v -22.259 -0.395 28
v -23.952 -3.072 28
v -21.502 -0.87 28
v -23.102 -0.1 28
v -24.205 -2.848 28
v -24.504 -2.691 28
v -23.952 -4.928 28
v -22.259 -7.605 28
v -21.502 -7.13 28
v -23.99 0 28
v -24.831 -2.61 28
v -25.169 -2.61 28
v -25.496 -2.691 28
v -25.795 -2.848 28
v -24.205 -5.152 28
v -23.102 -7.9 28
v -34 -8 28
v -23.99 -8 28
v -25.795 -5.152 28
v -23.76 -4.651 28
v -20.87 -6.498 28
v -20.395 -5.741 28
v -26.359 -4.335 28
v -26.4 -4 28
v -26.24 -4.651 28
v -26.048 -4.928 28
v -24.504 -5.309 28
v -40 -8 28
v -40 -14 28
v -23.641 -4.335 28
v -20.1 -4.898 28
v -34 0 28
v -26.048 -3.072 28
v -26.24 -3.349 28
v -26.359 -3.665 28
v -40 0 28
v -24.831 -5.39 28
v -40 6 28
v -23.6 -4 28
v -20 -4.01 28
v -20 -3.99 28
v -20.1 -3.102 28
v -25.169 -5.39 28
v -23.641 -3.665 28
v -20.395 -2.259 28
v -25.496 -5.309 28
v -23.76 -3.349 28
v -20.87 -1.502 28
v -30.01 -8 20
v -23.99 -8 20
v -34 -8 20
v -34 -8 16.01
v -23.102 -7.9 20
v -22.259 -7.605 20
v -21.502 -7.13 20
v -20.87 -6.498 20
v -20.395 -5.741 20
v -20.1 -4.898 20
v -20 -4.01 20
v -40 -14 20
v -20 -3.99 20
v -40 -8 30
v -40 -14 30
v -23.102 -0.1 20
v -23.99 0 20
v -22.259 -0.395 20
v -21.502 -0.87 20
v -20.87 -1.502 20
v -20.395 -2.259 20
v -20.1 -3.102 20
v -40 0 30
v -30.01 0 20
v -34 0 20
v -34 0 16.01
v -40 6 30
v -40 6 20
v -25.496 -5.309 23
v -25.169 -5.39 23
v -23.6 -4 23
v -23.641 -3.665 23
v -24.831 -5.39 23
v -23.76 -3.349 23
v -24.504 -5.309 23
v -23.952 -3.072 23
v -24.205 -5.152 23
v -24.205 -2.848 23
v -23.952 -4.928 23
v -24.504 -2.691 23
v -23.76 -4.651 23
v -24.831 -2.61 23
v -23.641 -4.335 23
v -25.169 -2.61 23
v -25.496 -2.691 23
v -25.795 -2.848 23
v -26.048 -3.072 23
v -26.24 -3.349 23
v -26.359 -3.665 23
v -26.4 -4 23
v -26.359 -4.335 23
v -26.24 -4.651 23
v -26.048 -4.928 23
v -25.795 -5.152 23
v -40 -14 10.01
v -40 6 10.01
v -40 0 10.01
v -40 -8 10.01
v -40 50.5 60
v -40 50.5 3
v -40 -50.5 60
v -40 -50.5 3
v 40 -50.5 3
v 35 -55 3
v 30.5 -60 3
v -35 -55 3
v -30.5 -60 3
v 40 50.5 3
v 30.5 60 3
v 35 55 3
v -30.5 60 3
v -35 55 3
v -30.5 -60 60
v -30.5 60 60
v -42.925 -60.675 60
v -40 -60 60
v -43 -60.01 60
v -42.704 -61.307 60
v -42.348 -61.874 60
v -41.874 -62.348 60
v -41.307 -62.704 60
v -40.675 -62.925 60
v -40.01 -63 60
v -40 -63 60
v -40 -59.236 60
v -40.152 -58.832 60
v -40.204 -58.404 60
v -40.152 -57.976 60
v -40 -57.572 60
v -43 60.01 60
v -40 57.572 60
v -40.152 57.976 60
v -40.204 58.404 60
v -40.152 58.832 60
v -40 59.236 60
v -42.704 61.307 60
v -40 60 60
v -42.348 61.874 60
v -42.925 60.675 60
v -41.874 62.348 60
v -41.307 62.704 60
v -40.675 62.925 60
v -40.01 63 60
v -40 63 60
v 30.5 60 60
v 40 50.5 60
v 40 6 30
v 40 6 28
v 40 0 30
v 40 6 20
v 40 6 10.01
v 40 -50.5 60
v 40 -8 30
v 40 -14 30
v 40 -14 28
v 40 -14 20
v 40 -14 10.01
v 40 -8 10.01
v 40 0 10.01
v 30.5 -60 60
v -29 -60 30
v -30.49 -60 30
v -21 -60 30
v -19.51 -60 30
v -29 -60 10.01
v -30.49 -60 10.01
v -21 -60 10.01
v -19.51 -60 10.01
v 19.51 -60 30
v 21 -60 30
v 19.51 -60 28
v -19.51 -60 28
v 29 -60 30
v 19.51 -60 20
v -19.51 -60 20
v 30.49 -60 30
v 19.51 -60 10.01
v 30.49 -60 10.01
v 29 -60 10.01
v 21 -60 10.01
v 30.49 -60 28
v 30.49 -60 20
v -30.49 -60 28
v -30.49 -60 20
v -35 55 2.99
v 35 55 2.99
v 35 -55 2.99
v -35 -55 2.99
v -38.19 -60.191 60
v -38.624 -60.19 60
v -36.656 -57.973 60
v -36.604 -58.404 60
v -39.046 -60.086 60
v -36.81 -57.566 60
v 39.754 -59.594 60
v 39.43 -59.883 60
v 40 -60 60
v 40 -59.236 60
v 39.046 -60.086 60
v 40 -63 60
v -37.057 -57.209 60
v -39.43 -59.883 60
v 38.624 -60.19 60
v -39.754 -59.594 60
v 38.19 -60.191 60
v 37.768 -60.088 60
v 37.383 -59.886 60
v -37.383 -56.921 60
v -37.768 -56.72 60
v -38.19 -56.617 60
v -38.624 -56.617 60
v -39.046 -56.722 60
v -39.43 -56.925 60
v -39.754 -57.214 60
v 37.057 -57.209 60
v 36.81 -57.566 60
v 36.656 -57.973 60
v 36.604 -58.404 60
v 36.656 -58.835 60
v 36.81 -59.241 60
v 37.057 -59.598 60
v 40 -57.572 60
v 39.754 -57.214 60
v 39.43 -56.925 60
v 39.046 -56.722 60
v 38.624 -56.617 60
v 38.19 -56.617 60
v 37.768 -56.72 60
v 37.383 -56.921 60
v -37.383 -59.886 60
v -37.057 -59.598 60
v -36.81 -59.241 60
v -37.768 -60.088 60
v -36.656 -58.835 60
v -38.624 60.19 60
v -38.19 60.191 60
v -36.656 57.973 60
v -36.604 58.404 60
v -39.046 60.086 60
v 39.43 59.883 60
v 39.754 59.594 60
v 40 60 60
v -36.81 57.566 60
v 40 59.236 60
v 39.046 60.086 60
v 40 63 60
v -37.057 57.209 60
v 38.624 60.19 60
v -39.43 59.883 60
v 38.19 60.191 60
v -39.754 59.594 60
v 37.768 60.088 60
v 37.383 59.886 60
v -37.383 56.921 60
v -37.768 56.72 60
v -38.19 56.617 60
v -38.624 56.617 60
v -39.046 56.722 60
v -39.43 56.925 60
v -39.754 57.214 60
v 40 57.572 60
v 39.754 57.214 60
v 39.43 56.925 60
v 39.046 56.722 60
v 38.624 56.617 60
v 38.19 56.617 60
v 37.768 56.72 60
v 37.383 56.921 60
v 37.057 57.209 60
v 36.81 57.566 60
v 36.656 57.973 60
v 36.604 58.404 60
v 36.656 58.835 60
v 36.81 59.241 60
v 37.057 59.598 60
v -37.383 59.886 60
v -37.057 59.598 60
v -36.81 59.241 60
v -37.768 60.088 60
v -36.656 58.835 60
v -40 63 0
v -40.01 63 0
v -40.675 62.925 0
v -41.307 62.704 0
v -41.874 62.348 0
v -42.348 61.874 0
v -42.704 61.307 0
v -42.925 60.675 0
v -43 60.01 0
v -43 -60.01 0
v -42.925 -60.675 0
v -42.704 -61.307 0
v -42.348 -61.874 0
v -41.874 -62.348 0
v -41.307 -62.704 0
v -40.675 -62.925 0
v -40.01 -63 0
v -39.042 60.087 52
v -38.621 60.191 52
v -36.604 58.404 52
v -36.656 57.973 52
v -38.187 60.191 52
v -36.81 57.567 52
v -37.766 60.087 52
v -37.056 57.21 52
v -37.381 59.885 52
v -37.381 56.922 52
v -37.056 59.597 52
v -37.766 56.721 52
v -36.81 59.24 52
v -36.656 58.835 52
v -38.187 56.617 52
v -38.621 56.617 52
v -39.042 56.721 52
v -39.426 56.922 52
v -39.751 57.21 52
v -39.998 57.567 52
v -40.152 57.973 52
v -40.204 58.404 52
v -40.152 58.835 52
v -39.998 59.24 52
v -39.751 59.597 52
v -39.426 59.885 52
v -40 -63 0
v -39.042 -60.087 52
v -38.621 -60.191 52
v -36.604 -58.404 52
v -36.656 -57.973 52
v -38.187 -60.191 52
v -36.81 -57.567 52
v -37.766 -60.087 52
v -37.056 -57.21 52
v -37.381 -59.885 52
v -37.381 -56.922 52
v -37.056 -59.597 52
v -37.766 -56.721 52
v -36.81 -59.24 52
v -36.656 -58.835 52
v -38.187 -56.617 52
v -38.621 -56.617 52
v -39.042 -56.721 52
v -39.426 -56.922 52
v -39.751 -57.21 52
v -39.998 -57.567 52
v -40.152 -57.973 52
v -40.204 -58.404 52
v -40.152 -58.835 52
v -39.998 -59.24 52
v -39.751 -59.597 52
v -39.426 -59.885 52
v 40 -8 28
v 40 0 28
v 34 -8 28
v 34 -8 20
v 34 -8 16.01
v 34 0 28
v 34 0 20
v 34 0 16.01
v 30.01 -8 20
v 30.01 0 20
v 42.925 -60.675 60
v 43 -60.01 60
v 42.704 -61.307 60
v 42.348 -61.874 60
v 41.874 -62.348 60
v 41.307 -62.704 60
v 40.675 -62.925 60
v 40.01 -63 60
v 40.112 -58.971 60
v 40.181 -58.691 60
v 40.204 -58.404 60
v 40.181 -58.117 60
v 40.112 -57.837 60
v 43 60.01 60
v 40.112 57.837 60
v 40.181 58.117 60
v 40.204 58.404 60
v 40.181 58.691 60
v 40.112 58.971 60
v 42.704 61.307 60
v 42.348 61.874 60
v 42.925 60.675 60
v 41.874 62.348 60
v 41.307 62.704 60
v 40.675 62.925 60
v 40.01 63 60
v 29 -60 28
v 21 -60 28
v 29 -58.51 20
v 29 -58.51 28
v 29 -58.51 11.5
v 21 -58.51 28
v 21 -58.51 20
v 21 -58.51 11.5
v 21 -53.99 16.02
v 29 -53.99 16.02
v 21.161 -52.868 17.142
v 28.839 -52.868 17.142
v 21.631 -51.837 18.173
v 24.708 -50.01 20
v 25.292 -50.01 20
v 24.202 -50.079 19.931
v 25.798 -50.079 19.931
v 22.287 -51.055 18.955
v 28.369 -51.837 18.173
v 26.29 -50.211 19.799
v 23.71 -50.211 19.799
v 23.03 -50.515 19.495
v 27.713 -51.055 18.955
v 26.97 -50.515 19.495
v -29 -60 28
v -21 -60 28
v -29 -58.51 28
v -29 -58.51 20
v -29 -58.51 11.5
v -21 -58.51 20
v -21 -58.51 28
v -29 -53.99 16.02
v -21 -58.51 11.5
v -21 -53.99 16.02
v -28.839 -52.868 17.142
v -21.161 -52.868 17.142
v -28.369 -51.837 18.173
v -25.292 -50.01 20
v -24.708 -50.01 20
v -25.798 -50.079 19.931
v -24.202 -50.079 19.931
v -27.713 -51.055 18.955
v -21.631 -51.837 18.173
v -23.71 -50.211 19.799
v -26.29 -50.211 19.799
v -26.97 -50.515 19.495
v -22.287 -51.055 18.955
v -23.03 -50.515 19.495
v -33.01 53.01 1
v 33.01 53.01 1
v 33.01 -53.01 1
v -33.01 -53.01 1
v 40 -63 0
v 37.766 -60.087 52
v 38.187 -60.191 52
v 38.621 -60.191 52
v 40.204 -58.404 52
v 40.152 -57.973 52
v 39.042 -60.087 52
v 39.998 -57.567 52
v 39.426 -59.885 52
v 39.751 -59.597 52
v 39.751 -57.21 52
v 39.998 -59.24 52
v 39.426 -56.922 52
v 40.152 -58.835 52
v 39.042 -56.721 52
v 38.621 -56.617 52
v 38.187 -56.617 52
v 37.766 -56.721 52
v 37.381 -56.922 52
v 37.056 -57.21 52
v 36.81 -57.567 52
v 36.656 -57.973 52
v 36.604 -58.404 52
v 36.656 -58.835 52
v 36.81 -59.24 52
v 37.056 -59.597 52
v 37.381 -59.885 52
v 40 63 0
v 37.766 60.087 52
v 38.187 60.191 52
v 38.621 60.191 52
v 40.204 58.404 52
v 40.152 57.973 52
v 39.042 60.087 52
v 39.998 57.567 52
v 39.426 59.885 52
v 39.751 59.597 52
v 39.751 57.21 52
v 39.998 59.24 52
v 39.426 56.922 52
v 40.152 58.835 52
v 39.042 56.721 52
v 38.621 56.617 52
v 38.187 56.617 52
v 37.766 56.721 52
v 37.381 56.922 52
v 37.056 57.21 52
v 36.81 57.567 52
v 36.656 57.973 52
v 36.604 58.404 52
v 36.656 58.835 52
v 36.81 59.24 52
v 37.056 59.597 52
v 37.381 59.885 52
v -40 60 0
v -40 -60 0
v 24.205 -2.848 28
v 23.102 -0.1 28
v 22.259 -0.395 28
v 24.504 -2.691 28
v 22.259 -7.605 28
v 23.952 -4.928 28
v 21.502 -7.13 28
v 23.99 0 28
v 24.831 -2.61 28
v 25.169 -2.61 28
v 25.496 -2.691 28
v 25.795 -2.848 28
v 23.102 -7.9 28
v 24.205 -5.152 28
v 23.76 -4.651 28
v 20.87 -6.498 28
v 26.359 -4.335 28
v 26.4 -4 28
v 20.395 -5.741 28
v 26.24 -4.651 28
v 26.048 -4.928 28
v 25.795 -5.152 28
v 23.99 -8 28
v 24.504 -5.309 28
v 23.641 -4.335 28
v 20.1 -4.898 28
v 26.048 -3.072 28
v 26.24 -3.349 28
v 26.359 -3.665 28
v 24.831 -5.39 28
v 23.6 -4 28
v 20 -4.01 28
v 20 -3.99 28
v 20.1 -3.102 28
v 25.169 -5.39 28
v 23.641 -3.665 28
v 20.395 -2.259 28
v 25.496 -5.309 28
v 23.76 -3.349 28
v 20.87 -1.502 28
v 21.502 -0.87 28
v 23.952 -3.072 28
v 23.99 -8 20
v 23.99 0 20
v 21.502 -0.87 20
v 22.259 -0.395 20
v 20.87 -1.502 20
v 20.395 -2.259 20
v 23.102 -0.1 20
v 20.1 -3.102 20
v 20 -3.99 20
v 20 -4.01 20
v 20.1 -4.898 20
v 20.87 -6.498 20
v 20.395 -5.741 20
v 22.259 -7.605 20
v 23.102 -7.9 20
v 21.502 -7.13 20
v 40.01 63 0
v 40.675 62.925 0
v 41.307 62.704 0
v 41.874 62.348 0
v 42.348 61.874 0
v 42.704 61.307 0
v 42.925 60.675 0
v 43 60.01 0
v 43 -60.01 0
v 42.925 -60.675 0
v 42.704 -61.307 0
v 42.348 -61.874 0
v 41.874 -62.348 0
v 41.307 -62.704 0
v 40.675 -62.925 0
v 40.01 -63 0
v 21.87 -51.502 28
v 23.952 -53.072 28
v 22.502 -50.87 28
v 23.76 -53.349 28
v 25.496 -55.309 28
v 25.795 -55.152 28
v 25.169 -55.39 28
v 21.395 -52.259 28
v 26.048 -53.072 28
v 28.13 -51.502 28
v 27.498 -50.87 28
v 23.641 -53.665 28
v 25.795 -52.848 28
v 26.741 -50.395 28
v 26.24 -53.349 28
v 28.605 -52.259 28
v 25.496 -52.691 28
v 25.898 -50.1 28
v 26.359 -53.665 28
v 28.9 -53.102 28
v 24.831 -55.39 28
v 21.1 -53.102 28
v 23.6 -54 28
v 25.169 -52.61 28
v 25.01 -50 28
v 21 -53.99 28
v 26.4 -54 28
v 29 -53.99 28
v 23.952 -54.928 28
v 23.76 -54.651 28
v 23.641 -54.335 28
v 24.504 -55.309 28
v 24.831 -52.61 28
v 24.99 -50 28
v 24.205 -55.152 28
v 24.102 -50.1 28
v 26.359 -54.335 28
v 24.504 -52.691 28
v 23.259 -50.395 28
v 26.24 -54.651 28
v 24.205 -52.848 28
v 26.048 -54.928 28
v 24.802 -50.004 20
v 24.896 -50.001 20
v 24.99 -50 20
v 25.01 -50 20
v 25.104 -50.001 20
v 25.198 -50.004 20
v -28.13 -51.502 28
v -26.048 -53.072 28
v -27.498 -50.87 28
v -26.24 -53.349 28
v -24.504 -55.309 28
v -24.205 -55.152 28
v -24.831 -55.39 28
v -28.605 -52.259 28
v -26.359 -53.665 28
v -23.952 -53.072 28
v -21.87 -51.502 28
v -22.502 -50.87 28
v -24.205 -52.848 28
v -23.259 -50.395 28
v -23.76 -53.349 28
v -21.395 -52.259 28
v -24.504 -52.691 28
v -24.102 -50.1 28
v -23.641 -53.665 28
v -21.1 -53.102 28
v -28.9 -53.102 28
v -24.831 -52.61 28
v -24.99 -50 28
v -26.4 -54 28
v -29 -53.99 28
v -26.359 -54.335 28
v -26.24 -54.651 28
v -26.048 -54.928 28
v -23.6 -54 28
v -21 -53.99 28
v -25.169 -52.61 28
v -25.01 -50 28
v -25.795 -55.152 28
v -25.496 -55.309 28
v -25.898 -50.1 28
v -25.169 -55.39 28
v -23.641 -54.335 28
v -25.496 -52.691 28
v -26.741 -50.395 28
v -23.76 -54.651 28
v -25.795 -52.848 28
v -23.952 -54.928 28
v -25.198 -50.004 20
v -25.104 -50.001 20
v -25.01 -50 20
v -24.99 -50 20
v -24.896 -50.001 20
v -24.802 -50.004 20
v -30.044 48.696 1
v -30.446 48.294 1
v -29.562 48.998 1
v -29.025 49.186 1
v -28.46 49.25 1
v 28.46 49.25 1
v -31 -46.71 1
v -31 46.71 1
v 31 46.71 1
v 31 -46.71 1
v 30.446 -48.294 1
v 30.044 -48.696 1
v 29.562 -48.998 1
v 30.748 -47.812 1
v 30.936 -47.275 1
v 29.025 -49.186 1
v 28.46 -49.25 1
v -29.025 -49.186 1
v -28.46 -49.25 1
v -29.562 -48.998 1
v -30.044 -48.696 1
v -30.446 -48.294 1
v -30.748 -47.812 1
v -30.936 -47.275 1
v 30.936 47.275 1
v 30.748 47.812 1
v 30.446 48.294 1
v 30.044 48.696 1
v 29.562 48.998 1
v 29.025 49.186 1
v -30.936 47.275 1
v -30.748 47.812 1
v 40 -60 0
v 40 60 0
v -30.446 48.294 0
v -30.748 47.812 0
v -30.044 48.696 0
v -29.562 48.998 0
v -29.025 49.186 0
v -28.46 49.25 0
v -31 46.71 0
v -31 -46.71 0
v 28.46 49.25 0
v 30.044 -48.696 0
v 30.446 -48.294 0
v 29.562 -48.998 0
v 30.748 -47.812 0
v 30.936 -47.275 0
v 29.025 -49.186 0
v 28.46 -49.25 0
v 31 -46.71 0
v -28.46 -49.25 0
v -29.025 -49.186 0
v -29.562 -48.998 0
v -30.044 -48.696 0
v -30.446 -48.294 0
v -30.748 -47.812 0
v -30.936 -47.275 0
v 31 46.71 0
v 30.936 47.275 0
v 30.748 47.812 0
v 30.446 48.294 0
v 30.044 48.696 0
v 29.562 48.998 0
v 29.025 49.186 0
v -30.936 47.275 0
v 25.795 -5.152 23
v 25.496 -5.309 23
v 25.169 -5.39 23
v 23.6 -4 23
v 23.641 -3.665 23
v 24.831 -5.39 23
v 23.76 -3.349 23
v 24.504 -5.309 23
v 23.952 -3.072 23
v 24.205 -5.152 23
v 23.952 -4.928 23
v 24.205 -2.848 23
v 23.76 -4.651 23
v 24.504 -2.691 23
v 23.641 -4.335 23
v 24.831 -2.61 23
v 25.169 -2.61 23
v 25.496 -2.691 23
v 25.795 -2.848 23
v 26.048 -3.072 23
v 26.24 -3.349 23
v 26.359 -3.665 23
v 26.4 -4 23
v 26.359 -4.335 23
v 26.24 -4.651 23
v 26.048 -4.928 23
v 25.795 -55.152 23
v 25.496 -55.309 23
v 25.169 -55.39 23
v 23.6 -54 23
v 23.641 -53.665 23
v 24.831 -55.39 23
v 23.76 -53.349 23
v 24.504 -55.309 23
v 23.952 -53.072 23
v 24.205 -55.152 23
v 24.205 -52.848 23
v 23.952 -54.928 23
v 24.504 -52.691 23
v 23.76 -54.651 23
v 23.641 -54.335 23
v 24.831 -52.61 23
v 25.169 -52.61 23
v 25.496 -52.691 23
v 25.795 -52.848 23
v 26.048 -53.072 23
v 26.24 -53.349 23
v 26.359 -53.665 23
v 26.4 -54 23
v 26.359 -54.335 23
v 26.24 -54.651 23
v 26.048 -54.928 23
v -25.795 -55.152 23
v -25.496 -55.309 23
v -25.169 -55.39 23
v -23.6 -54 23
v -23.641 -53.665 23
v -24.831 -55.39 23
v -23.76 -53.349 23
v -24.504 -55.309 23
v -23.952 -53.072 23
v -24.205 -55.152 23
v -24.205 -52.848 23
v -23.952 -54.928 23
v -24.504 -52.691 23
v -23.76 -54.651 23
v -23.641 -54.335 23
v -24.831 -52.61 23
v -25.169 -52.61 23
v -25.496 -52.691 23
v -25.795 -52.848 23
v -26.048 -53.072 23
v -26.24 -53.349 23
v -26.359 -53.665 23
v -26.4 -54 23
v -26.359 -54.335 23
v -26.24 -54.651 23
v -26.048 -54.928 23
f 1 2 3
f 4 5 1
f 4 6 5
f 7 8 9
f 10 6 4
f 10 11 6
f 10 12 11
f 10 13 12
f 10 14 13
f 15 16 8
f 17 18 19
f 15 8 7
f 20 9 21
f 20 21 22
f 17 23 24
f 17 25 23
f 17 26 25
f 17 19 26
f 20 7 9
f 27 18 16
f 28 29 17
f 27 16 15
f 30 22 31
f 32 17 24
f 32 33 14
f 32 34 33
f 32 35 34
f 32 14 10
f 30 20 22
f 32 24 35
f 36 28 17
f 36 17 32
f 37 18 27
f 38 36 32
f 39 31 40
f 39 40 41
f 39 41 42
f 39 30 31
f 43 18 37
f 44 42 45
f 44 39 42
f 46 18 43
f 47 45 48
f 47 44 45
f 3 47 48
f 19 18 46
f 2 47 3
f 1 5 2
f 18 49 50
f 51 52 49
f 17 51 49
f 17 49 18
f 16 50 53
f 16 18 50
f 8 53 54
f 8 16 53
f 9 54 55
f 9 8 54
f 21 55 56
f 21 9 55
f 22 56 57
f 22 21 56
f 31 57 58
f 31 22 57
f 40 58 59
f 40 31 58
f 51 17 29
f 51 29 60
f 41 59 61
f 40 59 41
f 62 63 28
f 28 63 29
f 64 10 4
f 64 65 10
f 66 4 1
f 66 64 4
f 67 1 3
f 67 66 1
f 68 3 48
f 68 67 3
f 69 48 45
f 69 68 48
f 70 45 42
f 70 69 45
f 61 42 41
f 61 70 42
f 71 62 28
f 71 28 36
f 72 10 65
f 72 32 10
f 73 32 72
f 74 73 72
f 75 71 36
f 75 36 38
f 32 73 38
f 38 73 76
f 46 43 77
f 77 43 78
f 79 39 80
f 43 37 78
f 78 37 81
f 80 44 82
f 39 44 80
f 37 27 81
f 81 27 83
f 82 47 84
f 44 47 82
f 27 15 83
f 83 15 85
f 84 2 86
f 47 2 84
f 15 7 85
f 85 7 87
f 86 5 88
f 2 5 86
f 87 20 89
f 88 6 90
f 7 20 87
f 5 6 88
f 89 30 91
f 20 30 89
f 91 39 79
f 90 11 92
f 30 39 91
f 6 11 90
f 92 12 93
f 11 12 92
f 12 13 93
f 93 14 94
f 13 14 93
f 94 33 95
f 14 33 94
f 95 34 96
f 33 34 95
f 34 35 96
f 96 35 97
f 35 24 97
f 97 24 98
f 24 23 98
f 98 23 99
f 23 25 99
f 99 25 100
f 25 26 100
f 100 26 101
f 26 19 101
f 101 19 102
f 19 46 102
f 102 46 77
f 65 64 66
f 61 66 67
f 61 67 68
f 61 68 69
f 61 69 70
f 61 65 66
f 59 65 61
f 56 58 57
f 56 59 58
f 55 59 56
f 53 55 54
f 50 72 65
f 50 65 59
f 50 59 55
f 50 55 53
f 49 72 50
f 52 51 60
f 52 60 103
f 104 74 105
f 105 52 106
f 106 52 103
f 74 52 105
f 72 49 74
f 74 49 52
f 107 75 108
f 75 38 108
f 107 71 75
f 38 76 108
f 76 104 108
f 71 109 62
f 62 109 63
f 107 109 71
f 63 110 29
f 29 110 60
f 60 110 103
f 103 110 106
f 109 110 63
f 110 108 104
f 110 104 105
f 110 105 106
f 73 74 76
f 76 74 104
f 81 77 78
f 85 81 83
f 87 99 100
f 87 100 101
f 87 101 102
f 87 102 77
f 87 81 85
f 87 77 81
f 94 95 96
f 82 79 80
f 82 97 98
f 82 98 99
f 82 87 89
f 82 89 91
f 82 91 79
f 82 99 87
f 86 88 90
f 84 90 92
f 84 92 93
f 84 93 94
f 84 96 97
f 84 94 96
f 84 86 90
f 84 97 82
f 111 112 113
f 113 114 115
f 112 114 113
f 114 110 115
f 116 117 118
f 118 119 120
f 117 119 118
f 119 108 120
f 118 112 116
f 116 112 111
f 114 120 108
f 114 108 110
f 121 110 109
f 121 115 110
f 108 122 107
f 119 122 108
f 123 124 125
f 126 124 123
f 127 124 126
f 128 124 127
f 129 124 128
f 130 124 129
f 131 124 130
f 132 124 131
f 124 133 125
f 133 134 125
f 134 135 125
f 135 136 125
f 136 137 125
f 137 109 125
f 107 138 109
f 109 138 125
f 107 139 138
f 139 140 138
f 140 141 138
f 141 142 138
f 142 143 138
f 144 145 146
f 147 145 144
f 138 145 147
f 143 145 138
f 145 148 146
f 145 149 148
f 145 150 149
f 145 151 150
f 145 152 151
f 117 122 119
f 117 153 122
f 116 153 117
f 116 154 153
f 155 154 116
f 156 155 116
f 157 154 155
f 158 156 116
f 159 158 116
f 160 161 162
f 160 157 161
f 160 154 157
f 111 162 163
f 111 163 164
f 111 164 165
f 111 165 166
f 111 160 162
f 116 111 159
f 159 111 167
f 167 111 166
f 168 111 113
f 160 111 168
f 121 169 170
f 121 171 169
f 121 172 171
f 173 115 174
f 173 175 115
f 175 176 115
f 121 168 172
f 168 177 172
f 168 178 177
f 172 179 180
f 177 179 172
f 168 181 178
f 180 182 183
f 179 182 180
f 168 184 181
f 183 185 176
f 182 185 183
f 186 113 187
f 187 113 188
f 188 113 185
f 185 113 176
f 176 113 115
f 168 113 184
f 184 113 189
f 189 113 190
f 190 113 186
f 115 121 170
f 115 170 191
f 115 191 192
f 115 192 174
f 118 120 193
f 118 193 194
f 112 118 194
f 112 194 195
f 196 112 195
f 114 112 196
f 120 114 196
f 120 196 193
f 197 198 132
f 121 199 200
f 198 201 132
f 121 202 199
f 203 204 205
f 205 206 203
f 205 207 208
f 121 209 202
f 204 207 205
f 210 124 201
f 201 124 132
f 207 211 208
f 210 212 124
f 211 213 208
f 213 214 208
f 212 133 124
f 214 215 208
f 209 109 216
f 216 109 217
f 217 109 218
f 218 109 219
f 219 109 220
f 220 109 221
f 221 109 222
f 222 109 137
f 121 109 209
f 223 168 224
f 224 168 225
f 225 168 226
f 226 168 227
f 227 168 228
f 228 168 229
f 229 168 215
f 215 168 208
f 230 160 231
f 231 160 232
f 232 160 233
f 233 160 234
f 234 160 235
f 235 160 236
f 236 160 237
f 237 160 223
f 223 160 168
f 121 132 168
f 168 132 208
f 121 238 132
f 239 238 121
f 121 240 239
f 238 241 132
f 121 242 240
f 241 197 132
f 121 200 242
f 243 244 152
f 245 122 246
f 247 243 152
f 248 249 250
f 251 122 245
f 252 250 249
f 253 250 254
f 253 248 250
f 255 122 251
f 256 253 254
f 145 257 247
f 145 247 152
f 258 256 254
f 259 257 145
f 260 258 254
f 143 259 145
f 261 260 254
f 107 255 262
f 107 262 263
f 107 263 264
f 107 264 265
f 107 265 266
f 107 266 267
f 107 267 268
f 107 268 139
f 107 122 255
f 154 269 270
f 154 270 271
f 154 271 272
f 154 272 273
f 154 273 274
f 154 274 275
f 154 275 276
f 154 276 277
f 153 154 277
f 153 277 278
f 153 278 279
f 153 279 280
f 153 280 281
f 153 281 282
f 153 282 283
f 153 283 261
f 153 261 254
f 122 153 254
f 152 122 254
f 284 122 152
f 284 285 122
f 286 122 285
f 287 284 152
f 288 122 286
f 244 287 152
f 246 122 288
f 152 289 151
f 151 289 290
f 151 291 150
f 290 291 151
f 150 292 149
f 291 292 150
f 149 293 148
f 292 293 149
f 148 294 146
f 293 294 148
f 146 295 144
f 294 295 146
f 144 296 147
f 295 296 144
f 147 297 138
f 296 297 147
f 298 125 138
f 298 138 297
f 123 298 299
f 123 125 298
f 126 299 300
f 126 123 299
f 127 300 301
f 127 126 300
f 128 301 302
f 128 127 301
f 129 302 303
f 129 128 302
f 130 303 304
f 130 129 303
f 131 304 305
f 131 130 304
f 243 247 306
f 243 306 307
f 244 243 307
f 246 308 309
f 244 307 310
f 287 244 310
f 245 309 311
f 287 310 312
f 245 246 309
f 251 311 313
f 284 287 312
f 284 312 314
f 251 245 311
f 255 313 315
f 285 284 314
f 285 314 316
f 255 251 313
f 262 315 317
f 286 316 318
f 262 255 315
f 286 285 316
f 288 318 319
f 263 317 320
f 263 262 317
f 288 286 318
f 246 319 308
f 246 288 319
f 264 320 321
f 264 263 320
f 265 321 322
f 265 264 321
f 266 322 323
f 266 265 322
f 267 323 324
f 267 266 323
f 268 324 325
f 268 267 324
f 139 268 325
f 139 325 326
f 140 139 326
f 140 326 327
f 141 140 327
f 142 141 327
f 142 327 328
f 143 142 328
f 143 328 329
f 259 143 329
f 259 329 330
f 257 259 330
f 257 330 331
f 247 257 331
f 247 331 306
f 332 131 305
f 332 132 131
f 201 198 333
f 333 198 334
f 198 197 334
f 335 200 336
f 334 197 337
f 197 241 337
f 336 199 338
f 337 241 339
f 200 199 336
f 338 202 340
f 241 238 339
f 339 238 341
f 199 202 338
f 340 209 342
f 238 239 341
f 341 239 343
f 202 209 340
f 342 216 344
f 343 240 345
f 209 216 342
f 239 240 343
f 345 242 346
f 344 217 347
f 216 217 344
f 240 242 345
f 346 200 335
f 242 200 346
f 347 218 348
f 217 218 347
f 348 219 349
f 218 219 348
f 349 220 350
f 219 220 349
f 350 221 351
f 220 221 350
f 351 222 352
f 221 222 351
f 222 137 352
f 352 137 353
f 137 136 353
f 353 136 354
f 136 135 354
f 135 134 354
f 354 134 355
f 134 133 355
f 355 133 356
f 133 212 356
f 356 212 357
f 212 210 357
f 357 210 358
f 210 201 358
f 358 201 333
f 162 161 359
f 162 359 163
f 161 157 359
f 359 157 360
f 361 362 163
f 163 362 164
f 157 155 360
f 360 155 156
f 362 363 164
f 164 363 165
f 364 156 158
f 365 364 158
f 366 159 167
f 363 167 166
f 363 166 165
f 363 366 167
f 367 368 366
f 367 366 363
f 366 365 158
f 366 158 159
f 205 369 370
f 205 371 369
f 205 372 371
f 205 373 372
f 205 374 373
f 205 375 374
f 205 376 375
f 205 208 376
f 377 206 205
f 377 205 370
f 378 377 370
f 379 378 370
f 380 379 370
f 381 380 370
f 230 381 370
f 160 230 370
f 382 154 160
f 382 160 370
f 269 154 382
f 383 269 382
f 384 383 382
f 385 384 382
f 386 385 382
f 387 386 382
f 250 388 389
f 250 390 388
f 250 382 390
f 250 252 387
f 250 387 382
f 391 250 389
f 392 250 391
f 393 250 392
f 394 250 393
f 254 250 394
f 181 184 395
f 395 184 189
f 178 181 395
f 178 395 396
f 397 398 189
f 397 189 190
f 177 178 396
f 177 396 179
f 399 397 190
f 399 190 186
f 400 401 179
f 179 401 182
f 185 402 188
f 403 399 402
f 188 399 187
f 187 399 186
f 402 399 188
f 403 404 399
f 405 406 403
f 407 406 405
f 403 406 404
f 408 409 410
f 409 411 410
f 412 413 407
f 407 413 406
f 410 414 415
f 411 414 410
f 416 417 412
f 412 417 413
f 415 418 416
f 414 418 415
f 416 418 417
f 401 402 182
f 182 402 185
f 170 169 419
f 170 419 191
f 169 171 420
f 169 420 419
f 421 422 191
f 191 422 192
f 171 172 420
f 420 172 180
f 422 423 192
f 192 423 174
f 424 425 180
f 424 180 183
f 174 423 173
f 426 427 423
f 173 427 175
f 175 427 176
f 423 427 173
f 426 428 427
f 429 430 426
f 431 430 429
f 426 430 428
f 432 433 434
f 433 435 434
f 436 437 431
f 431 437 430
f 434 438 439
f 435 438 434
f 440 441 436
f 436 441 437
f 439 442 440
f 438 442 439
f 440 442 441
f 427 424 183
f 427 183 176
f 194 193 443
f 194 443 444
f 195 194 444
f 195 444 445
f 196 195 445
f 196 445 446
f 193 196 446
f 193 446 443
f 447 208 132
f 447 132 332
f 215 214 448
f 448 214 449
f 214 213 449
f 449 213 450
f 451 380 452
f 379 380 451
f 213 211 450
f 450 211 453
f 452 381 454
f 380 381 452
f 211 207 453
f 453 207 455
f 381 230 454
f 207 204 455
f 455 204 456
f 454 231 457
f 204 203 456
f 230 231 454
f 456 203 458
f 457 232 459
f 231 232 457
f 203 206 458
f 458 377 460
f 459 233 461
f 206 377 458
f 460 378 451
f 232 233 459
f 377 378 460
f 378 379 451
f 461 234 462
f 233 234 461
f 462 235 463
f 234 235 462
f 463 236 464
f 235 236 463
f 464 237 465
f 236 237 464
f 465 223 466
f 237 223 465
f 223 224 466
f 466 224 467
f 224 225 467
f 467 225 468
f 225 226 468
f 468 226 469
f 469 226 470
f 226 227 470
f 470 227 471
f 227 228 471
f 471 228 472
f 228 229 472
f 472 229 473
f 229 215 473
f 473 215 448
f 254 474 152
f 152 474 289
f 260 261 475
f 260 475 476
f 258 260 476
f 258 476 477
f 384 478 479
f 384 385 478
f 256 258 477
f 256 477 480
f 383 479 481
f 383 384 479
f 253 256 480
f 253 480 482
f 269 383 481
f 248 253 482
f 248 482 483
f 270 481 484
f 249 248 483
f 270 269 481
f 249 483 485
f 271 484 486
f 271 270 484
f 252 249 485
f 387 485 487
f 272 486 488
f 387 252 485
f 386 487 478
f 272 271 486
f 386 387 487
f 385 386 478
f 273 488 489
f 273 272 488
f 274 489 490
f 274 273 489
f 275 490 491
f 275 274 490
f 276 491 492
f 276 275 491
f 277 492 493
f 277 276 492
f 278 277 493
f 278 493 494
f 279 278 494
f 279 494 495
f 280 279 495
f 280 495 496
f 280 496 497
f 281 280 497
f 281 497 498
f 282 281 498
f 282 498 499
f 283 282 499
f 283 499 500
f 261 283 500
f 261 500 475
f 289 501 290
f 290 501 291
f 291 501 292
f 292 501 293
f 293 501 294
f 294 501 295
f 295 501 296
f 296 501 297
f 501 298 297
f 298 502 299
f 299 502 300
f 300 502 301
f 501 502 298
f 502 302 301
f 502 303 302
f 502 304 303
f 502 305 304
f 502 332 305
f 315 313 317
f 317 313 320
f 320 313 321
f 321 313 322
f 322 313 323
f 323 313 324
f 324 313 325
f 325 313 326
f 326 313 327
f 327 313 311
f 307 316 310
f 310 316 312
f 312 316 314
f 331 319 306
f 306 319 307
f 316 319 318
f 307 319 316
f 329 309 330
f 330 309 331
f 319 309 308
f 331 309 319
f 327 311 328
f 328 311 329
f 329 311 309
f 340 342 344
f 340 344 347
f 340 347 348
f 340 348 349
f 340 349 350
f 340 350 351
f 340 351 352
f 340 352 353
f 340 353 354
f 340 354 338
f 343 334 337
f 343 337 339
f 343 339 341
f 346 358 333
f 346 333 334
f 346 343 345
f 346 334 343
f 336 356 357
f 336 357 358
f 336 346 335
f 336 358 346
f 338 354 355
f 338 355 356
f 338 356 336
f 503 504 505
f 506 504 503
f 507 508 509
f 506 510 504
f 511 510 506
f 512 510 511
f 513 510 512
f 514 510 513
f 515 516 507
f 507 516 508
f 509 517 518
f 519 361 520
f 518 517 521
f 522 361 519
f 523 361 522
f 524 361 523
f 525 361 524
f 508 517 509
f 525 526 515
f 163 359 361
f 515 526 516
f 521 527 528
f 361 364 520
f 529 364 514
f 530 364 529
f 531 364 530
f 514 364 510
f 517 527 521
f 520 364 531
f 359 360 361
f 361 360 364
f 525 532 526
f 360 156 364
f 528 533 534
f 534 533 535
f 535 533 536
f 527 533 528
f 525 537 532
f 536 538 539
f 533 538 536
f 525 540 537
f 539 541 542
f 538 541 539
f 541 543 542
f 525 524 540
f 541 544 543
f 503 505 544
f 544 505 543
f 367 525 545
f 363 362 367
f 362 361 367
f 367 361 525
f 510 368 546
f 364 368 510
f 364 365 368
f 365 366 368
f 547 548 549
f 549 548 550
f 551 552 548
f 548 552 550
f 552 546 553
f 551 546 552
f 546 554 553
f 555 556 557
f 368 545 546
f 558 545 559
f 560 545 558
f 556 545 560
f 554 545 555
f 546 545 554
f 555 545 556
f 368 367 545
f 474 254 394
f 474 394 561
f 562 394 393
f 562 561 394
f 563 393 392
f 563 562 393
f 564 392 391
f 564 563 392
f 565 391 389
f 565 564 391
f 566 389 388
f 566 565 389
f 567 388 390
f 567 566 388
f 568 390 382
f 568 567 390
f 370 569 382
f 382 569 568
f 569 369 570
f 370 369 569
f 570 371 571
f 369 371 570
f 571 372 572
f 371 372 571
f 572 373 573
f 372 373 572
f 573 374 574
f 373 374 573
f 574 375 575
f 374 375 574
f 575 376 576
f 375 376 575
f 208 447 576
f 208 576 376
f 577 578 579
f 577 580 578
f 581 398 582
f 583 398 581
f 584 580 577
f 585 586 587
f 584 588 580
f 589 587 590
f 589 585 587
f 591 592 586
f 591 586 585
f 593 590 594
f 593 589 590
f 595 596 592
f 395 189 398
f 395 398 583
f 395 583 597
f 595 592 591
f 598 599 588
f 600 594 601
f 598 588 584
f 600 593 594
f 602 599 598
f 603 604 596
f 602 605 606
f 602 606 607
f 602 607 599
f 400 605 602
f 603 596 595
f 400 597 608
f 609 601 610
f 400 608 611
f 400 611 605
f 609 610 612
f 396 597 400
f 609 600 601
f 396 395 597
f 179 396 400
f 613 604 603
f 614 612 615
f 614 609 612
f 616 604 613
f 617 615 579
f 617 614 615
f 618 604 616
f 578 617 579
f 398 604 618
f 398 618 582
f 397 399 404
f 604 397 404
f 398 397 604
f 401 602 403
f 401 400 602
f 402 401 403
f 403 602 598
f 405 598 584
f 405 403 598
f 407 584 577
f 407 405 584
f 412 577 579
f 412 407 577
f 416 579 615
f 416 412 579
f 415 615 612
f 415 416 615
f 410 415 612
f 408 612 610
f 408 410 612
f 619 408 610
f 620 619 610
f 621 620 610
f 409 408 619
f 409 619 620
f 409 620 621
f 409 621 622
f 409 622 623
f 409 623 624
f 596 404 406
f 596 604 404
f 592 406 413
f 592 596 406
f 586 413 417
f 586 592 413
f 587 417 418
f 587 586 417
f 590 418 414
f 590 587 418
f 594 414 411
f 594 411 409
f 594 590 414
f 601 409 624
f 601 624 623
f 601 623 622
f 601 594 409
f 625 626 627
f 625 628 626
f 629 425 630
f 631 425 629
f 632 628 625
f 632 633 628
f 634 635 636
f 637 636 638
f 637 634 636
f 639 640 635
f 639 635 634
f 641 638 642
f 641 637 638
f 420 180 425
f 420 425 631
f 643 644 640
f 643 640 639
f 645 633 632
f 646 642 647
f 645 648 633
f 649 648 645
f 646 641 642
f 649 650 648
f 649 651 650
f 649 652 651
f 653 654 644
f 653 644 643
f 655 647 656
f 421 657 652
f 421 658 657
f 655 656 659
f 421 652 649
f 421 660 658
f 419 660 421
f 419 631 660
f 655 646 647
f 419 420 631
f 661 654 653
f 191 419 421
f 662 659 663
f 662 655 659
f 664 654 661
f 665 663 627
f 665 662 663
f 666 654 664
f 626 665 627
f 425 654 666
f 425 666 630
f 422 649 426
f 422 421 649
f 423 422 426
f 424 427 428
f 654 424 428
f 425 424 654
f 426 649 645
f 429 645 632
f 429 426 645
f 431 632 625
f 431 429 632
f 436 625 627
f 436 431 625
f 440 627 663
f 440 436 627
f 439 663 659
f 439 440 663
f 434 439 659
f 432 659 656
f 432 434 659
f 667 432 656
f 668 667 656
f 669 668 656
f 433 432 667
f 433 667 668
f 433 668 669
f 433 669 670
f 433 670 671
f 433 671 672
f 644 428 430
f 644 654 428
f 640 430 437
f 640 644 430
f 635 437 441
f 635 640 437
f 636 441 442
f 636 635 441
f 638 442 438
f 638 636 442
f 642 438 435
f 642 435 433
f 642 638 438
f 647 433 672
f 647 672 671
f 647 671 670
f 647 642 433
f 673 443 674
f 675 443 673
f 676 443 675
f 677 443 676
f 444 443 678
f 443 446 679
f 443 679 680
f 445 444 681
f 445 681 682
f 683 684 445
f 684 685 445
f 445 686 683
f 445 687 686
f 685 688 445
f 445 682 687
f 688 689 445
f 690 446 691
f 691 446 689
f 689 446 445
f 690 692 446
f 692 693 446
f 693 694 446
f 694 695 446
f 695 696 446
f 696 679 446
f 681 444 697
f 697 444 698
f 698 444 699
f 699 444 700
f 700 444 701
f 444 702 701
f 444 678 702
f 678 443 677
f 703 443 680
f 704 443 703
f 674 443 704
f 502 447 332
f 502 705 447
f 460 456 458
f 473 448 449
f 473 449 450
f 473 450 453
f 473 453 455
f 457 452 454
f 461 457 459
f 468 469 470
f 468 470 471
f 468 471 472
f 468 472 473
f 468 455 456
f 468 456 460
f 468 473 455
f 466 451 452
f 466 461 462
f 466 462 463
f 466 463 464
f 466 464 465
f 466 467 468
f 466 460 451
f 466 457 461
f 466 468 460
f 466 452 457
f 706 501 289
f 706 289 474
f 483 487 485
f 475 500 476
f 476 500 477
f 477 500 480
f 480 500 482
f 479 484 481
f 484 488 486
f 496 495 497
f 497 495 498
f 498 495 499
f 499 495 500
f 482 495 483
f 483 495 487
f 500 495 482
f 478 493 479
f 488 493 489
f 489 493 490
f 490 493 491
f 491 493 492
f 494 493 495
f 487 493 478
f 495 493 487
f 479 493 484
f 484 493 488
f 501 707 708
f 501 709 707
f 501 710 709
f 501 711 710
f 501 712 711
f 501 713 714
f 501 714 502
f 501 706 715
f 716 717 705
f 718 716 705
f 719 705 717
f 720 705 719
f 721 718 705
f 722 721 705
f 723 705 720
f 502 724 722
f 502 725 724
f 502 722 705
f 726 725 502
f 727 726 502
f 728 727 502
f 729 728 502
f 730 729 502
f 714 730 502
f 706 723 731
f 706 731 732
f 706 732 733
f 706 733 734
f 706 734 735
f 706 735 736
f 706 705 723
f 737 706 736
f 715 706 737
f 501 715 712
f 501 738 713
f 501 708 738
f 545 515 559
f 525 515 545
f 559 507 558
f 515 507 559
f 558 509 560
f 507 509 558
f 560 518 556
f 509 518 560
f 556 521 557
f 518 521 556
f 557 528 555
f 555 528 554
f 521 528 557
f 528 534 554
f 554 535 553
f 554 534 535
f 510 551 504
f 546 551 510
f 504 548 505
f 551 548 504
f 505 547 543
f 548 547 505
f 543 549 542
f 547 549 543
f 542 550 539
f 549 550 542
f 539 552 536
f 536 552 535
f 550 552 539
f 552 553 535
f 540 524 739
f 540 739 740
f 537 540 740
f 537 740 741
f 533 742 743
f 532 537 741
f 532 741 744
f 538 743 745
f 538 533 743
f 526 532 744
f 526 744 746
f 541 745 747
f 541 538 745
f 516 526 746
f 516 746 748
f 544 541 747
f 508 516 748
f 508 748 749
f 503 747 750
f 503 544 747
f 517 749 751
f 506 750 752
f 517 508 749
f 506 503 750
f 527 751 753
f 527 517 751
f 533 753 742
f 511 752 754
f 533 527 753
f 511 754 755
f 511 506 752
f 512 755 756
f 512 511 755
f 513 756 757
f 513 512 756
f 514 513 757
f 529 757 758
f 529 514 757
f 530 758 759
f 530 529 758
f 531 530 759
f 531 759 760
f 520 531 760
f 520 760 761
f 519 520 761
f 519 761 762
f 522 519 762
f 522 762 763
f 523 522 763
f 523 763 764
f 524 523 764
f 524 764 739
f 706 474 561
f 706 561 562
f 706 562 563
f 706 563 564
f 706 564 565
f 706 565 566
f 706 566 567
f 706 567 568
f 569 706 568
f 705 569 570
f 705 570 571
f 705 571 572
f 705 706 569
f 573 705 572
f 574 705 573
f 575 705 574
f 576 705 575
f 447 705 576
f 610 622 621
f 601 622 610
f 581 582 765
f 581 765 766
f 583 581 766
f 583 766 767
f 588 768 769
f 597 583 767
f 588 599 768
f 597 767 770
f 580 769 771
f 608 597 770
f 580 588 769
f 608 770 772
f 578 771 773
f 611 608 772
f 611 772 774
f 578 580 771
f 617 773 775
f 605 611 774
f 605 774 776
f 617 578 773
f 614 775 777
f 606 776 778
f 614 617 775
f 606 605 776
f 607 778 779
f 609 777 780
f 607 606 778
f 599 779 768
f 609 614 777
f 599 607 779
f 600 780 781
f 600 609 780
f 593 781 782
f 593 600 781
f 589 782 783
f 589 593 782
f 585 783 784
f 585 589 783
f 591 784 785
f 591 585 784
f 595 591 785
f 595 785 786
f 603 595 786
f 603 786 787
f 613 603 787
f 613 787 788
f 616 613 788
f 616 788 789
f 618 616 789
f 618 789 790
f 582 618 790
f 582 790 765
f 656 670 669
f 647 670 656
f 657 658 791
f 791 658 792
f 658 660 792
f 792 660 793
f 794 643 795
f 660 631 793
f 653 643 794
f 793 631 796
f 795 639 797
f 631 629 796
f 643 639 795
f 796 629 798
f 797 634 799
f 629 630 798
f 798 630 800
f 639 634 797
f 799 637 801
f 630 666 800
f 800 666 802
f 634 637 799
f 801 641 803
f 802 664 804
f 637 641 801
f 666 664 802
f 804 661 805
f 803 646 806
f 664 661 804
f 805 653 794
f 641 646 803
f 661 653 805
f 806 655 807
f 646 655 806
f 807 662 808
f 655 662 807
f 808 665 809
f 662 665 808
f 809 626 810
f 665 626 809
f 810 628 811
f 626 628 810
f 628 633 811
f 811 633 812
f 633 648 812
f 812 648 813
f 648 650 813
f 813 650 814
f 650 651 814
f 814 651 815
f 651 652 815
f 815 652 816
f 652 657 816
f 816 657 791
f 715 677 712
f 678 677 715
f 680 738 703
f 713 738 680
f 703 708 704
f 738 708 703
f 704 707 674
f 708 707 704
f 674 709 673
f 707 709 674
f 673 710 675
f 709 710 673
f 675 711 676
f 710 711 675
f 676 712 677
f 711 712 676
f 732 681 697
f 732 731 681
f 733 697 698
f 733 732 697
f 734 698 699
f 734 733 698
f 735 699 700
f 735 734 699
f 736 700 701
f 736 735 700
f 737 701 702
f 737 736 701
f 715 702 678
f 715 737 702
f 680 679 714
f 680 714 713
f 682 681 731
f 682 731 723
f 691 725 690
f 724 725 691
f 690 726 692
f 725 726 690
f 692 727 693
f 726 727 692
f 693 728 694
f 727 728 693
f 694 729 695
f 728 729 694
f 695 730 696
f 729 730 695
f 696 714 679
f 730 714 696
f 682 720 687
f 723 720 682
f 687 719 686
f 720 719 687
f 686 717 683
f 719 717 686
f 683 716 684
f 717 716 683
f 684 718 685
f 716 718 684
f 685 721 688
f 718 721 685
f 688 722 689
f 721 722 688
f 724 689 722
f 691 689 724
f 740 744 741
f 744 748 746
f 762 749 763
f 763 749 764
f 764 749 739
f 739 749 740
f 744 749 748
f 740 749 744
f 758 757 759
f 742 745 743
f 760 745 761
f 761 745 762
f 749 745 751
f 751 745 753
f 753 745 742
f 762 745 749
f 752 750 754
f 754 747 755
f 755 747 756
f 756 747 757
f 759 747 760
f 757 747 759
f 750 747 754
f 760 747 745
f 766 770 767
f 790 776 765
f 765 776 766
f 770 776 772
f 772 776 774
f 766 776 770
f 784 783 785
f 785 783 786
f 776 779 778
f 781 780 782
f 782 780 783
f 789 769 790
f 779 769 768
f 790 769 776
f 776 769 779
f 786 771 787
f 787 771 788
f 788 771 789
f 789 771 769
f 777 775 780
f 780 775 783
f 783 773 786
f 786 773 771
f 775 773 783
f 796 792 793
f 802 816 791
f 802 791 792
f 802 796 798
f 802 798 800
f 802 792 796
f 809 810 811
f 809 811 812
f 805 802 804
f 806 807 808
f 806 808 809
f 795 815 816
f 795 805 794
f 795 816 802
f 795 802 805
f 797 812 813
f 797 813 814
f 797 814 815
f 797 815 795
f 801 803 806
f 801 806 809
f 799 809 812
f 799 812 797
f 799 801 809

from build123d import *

# Parameters (mm, degrees)
SKETCH_W            = 80
SKETCH_H            = 120
PAD_DEPTH           = 3
SKETCH001_W         = 70
SKETCH001_H         = 110
POCKET_DEPTH        = 2
SKETCH002_W         = 62
SKETCH002_H         = 98.5
POCKET001_DEPTH     = 5
FILLET_R            = 2.54
CHAMFER_SIZE        = 1.99
SKETCH003_W         = 126
SKETCH003_H         = 60
PAD001_DEPTH        = 3
SKETCH004_W         = 80
SKETCH004_H         = 60
PAD002_DEPTH        = 3
CHAMFER001_SIZE     = 9.5
SKETCH005_R         = 1.8
POCKET002_DEPTH     = 8
FILLET001_R         = 2.99
SKETCH006_W         = 8
SKETCH006_H         = 10
PAD003_DEPTH        = 10
SKETCH007_W         = 8
SKETCH007_H         = 10
PAD004_DEPTH        = 20
SKETCH008_R         = 1.4
POCKET003_DEPTH     = 7
SKETCH009_R         = 1.4
POCKET004_DEPTH     = 7
CHAMFER002_SIZE     = 9.99
CHAMFER003_SIZE     = 9.99
CHAMFER004_SIZE     = 1.49
CHAMFER005_SIZE     = 6
CHAMFER005_FACE36_R = 1.4
POCKET005_DEPTH     = 2
POCKET005_FACE45_R  = 1.4
POCKET006_DEPTH     = 2
POCKET006_FACE2_R   = 1.4
POCKET007_DEPTH     = 2
POCKET007_FACE55_R  = 1.4
POCKET008_DEPTH     = 2
FILLET002_R         = 3.99


with BuildPart() as part:
    # Sketch → Pad (new body)
    with BuildSketch(Plane.XY):
        Rectangle(SKETCH_W, SKETCH_H)
    extrude(amount=PAD_DEPTH)

    # Sketch001 (on Face6 of Pad) → Pocket (cut)
    with BuildSketch(Plane.XY.offset(3)):
        Rectangle(SKETCH001_W, SKETCH001_H)
    extrude(amount=-POCKET_DEPTH, mode=Mode.SUBTRACT)

    # Sketch002 (on Face11 of Pocket) → Pocket001 (cut)
    with BuildSketch(Plane.XY.offset(1)):
        Rectangle(SKETCH002_W, SKETCH002_H)
    extrude(amount=-POCKET001_DEPTH, mode=Mode.SUBTRACT)

    # Fillet
    fillet_edges = [part.edges().sort_by_distance(p)[0] for p in [
        (-31, 49.25, 0.5),
        (31, 49.25, 0.5),
        (31, -49.25, 0.5),
        (-31, -49.25, 0.5),
    ]]
    fillet(fillet_edges, radius=FILLET_R)

    # Chamfer
    chamfer_edges = [part.edges().sort_by_distance(p)[0] for p in [
        (0, 55, 1),
        (35, 0, 1),
        (0, -55, 1),
        (-35, 0, 1),
    ]]
    chamfer(chamfer_edges, length=CHAMFER_SIZE)

    # Sketch003 (on Face22 of Chamfer) → Pad001 (join)
    with BuildSketch(Plane.YZ.offset(40)):
        with Locations((0, 30)):
            Rectangle(SKETCH003_W, SKETCH003_H)
    pad001 = extrude(amount=PAD001_DEPTH)

    # Mirrored: Pad001 across YZ
    add(pad001.mirror(Plane.YZ))

    # Sketch004 (on Face9 of Mirrored) → Pad002 (join)
    with BuildSketch(Plane(origin=(0, 60, 0), x_dir=(-1, 0, 0), z_dir=(0, 1, 0))):
        with Locations((0, 30)):
            Rectangle(SKETCH004_W, SKETCH004_H)
    pad002 = extrude(amount=PAD002_DEPTH)

    # Mirrored001: Pad002 across XZ
    add(pad002.mirror(Plane.XZ))

    # Chamfer001
    chamfer001_edges = [part.edges().sort_by_distance(p)[0] for p in [
        (-40, -60, 31.5),
        (-40, 60, 31.5),
        (40, 60, 31.5),
        (40, -60, 31.5),
    ]]
    chamfer(chamfer001_edges, length=CHAMFER001_SIZE)

    # Sketch005 (on Face4 of Chamfer001) → Pocket002 (cut)
    with BuildSketch(Plane.XY.offset(60)):
        with Locations((-38.403806, -58.403806)):
            Circle(SKETCH005_R)
        with Locations((38.403806, -58.403806)):
            Circle(SKETCH005_R)
    pocket002 = extrude(amount=-POCKET002_DEPTH, mode=Mode.SUBTRACT)

    # Mirrored002: Pocket002 across XZ
    add(pocket002.mirror(Plane.XZ), mode=Mode.SUBTRACT)

    # Fillet001
    fillet001_edges = [part.edges().sort_by_distance(p)[0] for p in [
        (-43, 63, 30),
        (-43, -63, 30),
        (43, -63, 30),
        (43, 63, 30),
    ]]
    fillet(fillet001_edges, radius=FILLET001_R)

    # Sketch006 (on Face21 of Fillet001) → Pad003 (join)
    with BuildSketch(Plane(origin=(0, -60, 0), x_dir=(-1, 0, 0), z_dir=(0, 1, 0))):
        with Locations((-25, 25)):
            Rectangle(SKETCH006_W, SKETCH006_H)
        with Locations((25, 25)):
            Rectangle(SKETCH006_W, SKETCH006_H)
    extrude(amount=PAD003_DEPTH)

    # Sketch007 (on Face10 of Pad003) → Pad004 (join)
    with BuildSketch(Plane.YZ.offset(-40)):
        with Locations((-4, 25)):
            Rectangle(SKETCH007_W, SKETCH007_H)
    pad004 = extrude(amount=PAD004_DEPTH)

    # Sketch008 (on Face41 of Pad004) → Pocket003 (cut)
    with BuildSketch(Plane.XY.offset(30)):
        with Locations((-25, -54)):
            Circle(SKETCH008_R)
    pocket003 = extrude(amount=-POCKET003_DEPTH, mode=Mode.SUBTRACT)

    # Mirrored003: Pocket003 across Sketch008 V_Axis
    add(pocket003.mirror(Plane(origin=(0, 0, 30), x_dir=(0, 0, 1), z_dir=(1, 0, 0))), mode=Mode.SUBTRACT)

    # Sketch009 (on Face26 of Mirrored003) → Pocket004 (cut)
    with BuildSketch(Plane.XY.offset(30)):
        with Locations((-25, -4)):
            Circle(SKETCH009_R)
    pocket004 = extrude(amount=-POCKET004_DEPTH, mode=Mode.SUBTRACT)

    # Mirrored004: Pad004 across YZ
    add(pad004.mirror(Plane.YZ))

    # Mirrored005: Pocket004 across Sketch009 V_Axis
    add(pocket004.mirror(Plane(origin=(0, 0, 30), x_dir=(0, 0, 1), z_dir=(1, 0, 0))), mode=Mode.SUBTRACT)

    # Chamfer002
    chamfer002_edges = [part.edges().sort_by_distance(p)[0] for p in [
        (25, -60, 20),
        (-25, -60, 20),
    ]]
    chamfer(chamfer002_edges, length=CHAMFER002_SIZE)

    # Chamfer003
    chamfer003_edges = [part.edges().sort_by_distance(p)[0] for p in [
        (40, -4, 20),
        (-40, -4, 20),
    ]]
    chamfer(chamfer003_edges, length=CHAMFER003_SIZE)

    # Chamfer004
    chamfer004_edges = [part.edges().sort_by_distance(p)[0] for p in [
        (29, -60, 15.005),
        (29, -60, 25),
        (-29, -60, 15.005),
        (-21, -60, 15.005),
        (21, -60, 15.005),
    ]]
    chamfer(chamfer004_edges, length=CHAMFER004_SIZE)

    # Chamfer005
    chamfer005_edges = [part.edges().sort_by_distance(p)[0] for p in [
        (-40, 0, 15.005),
        (-40, -8, 15.005),
        (40, -8, 15.005),
        (40, 0, 15.005),
    ]]
    chamfer(chamfer005_edges, length=CHAMFER005_SIZE)

    # Chamfer005 Face36 → Pocket005 (cut)
    with BuildSketch(Plane(origin=(31.679222, -4, 30), x_dir=(0, 1, 0), z_dir=(0, 0, 1))):
        Polygon((-4, 11.679222), (-4, -2.320778), (-10, -8.320778), (-4, -8.320778), (4, -8.320778), (10, -8.320778), (4, -2.320778), (4, 11.679222), align=None)
        with Locations((0, 6.679222)):
            Circle(CHAMFER005_FACE36_R, mode=Mode.SUBTRACT)
    extrude(amount=-POCKET005_DEPTH, mode=Mode.SUBTRACT)

    # Pocket005 Face45 → Pocket006 (cut)
    with BuildSketch(Plane(origin=(25, -55.212396, 30), x_dir=(0, 1, 0), z_dir=(0, 0, 1))):
        Polygon((-3.297604, -4), (5.212396, -4), (5.212396, 4), (-3.297604, 4), (-4.787604, 5.49), (-4.787604, 4), (-4.787604, -4), (-4.787604, -5.49), align=None)
        with Locations((1.212396, 0)):
            Circle(POCKET005_FACE45_R, mode=Mode.SUBTRACT)
    extrude(amount=-POCKET006_DEPTH, mode=Mode.SUBTRACT)

    # Pocket006 Face2 → Pocket007 (cut)
    with BuildSketch(Plane(origin=(-31.679222, -4, 30), x_dir=(0, 1, 0), z_dir=(0, 0, 1))):
        Polygon((-4, 2.320778), (-4, -11.679222), (4, -11.679222), (4, 2.320778), (10, 8.320778), (4, 8.320778), (-4, 8.320778), (-10, 8.320778), align=None)
        with Locations((0, -6.679222)):
            Circle(POCKET006_FACE2_R, mode=Mode.SUBTRACT)
    extrude(amount=-POCKET007_DEPTH, mode=Mode.SUBTRACT)

    # Pocket007 Face55 → Pocket008 (cut)
    with BuildSketch(Plane(origin=(-25, -55.212396, 30), x_dir=(0, 1, 0), z_dir=(0, 0, 1))):
        Polygon((-3.297604, -4), (5.212396, -4), (5.212396, 4), (-3.297604, 4), (-4.787604, 5.49), (-4.787604, 4), (-4.787604, -4), (-4.787604, -5.49), align=None)
        with Locations((1.212396, 0)):
            Circle(POCKET007_FACE55_R, mode=Mode.SUBTRACT)
    extrude(amount=-POCKET008_DEPTH, mode=Mode.SUBTRACT)

    # Fillet002
    fillet002_edges = [part.edges().sort_by_distance(p)[0] for p in [
        (20, 0, 24),
        (20, -8, 24),
        (-20, -8, 24),
        (-20, 0, 24),
        (-29, -50, 24),
        (-21, -50, 24),
        (21, -50, 24),
        (29, -50, 24),
    ]]
    fillet(fillet002_edges, radius=FILLET002_R)


solid = part.part
